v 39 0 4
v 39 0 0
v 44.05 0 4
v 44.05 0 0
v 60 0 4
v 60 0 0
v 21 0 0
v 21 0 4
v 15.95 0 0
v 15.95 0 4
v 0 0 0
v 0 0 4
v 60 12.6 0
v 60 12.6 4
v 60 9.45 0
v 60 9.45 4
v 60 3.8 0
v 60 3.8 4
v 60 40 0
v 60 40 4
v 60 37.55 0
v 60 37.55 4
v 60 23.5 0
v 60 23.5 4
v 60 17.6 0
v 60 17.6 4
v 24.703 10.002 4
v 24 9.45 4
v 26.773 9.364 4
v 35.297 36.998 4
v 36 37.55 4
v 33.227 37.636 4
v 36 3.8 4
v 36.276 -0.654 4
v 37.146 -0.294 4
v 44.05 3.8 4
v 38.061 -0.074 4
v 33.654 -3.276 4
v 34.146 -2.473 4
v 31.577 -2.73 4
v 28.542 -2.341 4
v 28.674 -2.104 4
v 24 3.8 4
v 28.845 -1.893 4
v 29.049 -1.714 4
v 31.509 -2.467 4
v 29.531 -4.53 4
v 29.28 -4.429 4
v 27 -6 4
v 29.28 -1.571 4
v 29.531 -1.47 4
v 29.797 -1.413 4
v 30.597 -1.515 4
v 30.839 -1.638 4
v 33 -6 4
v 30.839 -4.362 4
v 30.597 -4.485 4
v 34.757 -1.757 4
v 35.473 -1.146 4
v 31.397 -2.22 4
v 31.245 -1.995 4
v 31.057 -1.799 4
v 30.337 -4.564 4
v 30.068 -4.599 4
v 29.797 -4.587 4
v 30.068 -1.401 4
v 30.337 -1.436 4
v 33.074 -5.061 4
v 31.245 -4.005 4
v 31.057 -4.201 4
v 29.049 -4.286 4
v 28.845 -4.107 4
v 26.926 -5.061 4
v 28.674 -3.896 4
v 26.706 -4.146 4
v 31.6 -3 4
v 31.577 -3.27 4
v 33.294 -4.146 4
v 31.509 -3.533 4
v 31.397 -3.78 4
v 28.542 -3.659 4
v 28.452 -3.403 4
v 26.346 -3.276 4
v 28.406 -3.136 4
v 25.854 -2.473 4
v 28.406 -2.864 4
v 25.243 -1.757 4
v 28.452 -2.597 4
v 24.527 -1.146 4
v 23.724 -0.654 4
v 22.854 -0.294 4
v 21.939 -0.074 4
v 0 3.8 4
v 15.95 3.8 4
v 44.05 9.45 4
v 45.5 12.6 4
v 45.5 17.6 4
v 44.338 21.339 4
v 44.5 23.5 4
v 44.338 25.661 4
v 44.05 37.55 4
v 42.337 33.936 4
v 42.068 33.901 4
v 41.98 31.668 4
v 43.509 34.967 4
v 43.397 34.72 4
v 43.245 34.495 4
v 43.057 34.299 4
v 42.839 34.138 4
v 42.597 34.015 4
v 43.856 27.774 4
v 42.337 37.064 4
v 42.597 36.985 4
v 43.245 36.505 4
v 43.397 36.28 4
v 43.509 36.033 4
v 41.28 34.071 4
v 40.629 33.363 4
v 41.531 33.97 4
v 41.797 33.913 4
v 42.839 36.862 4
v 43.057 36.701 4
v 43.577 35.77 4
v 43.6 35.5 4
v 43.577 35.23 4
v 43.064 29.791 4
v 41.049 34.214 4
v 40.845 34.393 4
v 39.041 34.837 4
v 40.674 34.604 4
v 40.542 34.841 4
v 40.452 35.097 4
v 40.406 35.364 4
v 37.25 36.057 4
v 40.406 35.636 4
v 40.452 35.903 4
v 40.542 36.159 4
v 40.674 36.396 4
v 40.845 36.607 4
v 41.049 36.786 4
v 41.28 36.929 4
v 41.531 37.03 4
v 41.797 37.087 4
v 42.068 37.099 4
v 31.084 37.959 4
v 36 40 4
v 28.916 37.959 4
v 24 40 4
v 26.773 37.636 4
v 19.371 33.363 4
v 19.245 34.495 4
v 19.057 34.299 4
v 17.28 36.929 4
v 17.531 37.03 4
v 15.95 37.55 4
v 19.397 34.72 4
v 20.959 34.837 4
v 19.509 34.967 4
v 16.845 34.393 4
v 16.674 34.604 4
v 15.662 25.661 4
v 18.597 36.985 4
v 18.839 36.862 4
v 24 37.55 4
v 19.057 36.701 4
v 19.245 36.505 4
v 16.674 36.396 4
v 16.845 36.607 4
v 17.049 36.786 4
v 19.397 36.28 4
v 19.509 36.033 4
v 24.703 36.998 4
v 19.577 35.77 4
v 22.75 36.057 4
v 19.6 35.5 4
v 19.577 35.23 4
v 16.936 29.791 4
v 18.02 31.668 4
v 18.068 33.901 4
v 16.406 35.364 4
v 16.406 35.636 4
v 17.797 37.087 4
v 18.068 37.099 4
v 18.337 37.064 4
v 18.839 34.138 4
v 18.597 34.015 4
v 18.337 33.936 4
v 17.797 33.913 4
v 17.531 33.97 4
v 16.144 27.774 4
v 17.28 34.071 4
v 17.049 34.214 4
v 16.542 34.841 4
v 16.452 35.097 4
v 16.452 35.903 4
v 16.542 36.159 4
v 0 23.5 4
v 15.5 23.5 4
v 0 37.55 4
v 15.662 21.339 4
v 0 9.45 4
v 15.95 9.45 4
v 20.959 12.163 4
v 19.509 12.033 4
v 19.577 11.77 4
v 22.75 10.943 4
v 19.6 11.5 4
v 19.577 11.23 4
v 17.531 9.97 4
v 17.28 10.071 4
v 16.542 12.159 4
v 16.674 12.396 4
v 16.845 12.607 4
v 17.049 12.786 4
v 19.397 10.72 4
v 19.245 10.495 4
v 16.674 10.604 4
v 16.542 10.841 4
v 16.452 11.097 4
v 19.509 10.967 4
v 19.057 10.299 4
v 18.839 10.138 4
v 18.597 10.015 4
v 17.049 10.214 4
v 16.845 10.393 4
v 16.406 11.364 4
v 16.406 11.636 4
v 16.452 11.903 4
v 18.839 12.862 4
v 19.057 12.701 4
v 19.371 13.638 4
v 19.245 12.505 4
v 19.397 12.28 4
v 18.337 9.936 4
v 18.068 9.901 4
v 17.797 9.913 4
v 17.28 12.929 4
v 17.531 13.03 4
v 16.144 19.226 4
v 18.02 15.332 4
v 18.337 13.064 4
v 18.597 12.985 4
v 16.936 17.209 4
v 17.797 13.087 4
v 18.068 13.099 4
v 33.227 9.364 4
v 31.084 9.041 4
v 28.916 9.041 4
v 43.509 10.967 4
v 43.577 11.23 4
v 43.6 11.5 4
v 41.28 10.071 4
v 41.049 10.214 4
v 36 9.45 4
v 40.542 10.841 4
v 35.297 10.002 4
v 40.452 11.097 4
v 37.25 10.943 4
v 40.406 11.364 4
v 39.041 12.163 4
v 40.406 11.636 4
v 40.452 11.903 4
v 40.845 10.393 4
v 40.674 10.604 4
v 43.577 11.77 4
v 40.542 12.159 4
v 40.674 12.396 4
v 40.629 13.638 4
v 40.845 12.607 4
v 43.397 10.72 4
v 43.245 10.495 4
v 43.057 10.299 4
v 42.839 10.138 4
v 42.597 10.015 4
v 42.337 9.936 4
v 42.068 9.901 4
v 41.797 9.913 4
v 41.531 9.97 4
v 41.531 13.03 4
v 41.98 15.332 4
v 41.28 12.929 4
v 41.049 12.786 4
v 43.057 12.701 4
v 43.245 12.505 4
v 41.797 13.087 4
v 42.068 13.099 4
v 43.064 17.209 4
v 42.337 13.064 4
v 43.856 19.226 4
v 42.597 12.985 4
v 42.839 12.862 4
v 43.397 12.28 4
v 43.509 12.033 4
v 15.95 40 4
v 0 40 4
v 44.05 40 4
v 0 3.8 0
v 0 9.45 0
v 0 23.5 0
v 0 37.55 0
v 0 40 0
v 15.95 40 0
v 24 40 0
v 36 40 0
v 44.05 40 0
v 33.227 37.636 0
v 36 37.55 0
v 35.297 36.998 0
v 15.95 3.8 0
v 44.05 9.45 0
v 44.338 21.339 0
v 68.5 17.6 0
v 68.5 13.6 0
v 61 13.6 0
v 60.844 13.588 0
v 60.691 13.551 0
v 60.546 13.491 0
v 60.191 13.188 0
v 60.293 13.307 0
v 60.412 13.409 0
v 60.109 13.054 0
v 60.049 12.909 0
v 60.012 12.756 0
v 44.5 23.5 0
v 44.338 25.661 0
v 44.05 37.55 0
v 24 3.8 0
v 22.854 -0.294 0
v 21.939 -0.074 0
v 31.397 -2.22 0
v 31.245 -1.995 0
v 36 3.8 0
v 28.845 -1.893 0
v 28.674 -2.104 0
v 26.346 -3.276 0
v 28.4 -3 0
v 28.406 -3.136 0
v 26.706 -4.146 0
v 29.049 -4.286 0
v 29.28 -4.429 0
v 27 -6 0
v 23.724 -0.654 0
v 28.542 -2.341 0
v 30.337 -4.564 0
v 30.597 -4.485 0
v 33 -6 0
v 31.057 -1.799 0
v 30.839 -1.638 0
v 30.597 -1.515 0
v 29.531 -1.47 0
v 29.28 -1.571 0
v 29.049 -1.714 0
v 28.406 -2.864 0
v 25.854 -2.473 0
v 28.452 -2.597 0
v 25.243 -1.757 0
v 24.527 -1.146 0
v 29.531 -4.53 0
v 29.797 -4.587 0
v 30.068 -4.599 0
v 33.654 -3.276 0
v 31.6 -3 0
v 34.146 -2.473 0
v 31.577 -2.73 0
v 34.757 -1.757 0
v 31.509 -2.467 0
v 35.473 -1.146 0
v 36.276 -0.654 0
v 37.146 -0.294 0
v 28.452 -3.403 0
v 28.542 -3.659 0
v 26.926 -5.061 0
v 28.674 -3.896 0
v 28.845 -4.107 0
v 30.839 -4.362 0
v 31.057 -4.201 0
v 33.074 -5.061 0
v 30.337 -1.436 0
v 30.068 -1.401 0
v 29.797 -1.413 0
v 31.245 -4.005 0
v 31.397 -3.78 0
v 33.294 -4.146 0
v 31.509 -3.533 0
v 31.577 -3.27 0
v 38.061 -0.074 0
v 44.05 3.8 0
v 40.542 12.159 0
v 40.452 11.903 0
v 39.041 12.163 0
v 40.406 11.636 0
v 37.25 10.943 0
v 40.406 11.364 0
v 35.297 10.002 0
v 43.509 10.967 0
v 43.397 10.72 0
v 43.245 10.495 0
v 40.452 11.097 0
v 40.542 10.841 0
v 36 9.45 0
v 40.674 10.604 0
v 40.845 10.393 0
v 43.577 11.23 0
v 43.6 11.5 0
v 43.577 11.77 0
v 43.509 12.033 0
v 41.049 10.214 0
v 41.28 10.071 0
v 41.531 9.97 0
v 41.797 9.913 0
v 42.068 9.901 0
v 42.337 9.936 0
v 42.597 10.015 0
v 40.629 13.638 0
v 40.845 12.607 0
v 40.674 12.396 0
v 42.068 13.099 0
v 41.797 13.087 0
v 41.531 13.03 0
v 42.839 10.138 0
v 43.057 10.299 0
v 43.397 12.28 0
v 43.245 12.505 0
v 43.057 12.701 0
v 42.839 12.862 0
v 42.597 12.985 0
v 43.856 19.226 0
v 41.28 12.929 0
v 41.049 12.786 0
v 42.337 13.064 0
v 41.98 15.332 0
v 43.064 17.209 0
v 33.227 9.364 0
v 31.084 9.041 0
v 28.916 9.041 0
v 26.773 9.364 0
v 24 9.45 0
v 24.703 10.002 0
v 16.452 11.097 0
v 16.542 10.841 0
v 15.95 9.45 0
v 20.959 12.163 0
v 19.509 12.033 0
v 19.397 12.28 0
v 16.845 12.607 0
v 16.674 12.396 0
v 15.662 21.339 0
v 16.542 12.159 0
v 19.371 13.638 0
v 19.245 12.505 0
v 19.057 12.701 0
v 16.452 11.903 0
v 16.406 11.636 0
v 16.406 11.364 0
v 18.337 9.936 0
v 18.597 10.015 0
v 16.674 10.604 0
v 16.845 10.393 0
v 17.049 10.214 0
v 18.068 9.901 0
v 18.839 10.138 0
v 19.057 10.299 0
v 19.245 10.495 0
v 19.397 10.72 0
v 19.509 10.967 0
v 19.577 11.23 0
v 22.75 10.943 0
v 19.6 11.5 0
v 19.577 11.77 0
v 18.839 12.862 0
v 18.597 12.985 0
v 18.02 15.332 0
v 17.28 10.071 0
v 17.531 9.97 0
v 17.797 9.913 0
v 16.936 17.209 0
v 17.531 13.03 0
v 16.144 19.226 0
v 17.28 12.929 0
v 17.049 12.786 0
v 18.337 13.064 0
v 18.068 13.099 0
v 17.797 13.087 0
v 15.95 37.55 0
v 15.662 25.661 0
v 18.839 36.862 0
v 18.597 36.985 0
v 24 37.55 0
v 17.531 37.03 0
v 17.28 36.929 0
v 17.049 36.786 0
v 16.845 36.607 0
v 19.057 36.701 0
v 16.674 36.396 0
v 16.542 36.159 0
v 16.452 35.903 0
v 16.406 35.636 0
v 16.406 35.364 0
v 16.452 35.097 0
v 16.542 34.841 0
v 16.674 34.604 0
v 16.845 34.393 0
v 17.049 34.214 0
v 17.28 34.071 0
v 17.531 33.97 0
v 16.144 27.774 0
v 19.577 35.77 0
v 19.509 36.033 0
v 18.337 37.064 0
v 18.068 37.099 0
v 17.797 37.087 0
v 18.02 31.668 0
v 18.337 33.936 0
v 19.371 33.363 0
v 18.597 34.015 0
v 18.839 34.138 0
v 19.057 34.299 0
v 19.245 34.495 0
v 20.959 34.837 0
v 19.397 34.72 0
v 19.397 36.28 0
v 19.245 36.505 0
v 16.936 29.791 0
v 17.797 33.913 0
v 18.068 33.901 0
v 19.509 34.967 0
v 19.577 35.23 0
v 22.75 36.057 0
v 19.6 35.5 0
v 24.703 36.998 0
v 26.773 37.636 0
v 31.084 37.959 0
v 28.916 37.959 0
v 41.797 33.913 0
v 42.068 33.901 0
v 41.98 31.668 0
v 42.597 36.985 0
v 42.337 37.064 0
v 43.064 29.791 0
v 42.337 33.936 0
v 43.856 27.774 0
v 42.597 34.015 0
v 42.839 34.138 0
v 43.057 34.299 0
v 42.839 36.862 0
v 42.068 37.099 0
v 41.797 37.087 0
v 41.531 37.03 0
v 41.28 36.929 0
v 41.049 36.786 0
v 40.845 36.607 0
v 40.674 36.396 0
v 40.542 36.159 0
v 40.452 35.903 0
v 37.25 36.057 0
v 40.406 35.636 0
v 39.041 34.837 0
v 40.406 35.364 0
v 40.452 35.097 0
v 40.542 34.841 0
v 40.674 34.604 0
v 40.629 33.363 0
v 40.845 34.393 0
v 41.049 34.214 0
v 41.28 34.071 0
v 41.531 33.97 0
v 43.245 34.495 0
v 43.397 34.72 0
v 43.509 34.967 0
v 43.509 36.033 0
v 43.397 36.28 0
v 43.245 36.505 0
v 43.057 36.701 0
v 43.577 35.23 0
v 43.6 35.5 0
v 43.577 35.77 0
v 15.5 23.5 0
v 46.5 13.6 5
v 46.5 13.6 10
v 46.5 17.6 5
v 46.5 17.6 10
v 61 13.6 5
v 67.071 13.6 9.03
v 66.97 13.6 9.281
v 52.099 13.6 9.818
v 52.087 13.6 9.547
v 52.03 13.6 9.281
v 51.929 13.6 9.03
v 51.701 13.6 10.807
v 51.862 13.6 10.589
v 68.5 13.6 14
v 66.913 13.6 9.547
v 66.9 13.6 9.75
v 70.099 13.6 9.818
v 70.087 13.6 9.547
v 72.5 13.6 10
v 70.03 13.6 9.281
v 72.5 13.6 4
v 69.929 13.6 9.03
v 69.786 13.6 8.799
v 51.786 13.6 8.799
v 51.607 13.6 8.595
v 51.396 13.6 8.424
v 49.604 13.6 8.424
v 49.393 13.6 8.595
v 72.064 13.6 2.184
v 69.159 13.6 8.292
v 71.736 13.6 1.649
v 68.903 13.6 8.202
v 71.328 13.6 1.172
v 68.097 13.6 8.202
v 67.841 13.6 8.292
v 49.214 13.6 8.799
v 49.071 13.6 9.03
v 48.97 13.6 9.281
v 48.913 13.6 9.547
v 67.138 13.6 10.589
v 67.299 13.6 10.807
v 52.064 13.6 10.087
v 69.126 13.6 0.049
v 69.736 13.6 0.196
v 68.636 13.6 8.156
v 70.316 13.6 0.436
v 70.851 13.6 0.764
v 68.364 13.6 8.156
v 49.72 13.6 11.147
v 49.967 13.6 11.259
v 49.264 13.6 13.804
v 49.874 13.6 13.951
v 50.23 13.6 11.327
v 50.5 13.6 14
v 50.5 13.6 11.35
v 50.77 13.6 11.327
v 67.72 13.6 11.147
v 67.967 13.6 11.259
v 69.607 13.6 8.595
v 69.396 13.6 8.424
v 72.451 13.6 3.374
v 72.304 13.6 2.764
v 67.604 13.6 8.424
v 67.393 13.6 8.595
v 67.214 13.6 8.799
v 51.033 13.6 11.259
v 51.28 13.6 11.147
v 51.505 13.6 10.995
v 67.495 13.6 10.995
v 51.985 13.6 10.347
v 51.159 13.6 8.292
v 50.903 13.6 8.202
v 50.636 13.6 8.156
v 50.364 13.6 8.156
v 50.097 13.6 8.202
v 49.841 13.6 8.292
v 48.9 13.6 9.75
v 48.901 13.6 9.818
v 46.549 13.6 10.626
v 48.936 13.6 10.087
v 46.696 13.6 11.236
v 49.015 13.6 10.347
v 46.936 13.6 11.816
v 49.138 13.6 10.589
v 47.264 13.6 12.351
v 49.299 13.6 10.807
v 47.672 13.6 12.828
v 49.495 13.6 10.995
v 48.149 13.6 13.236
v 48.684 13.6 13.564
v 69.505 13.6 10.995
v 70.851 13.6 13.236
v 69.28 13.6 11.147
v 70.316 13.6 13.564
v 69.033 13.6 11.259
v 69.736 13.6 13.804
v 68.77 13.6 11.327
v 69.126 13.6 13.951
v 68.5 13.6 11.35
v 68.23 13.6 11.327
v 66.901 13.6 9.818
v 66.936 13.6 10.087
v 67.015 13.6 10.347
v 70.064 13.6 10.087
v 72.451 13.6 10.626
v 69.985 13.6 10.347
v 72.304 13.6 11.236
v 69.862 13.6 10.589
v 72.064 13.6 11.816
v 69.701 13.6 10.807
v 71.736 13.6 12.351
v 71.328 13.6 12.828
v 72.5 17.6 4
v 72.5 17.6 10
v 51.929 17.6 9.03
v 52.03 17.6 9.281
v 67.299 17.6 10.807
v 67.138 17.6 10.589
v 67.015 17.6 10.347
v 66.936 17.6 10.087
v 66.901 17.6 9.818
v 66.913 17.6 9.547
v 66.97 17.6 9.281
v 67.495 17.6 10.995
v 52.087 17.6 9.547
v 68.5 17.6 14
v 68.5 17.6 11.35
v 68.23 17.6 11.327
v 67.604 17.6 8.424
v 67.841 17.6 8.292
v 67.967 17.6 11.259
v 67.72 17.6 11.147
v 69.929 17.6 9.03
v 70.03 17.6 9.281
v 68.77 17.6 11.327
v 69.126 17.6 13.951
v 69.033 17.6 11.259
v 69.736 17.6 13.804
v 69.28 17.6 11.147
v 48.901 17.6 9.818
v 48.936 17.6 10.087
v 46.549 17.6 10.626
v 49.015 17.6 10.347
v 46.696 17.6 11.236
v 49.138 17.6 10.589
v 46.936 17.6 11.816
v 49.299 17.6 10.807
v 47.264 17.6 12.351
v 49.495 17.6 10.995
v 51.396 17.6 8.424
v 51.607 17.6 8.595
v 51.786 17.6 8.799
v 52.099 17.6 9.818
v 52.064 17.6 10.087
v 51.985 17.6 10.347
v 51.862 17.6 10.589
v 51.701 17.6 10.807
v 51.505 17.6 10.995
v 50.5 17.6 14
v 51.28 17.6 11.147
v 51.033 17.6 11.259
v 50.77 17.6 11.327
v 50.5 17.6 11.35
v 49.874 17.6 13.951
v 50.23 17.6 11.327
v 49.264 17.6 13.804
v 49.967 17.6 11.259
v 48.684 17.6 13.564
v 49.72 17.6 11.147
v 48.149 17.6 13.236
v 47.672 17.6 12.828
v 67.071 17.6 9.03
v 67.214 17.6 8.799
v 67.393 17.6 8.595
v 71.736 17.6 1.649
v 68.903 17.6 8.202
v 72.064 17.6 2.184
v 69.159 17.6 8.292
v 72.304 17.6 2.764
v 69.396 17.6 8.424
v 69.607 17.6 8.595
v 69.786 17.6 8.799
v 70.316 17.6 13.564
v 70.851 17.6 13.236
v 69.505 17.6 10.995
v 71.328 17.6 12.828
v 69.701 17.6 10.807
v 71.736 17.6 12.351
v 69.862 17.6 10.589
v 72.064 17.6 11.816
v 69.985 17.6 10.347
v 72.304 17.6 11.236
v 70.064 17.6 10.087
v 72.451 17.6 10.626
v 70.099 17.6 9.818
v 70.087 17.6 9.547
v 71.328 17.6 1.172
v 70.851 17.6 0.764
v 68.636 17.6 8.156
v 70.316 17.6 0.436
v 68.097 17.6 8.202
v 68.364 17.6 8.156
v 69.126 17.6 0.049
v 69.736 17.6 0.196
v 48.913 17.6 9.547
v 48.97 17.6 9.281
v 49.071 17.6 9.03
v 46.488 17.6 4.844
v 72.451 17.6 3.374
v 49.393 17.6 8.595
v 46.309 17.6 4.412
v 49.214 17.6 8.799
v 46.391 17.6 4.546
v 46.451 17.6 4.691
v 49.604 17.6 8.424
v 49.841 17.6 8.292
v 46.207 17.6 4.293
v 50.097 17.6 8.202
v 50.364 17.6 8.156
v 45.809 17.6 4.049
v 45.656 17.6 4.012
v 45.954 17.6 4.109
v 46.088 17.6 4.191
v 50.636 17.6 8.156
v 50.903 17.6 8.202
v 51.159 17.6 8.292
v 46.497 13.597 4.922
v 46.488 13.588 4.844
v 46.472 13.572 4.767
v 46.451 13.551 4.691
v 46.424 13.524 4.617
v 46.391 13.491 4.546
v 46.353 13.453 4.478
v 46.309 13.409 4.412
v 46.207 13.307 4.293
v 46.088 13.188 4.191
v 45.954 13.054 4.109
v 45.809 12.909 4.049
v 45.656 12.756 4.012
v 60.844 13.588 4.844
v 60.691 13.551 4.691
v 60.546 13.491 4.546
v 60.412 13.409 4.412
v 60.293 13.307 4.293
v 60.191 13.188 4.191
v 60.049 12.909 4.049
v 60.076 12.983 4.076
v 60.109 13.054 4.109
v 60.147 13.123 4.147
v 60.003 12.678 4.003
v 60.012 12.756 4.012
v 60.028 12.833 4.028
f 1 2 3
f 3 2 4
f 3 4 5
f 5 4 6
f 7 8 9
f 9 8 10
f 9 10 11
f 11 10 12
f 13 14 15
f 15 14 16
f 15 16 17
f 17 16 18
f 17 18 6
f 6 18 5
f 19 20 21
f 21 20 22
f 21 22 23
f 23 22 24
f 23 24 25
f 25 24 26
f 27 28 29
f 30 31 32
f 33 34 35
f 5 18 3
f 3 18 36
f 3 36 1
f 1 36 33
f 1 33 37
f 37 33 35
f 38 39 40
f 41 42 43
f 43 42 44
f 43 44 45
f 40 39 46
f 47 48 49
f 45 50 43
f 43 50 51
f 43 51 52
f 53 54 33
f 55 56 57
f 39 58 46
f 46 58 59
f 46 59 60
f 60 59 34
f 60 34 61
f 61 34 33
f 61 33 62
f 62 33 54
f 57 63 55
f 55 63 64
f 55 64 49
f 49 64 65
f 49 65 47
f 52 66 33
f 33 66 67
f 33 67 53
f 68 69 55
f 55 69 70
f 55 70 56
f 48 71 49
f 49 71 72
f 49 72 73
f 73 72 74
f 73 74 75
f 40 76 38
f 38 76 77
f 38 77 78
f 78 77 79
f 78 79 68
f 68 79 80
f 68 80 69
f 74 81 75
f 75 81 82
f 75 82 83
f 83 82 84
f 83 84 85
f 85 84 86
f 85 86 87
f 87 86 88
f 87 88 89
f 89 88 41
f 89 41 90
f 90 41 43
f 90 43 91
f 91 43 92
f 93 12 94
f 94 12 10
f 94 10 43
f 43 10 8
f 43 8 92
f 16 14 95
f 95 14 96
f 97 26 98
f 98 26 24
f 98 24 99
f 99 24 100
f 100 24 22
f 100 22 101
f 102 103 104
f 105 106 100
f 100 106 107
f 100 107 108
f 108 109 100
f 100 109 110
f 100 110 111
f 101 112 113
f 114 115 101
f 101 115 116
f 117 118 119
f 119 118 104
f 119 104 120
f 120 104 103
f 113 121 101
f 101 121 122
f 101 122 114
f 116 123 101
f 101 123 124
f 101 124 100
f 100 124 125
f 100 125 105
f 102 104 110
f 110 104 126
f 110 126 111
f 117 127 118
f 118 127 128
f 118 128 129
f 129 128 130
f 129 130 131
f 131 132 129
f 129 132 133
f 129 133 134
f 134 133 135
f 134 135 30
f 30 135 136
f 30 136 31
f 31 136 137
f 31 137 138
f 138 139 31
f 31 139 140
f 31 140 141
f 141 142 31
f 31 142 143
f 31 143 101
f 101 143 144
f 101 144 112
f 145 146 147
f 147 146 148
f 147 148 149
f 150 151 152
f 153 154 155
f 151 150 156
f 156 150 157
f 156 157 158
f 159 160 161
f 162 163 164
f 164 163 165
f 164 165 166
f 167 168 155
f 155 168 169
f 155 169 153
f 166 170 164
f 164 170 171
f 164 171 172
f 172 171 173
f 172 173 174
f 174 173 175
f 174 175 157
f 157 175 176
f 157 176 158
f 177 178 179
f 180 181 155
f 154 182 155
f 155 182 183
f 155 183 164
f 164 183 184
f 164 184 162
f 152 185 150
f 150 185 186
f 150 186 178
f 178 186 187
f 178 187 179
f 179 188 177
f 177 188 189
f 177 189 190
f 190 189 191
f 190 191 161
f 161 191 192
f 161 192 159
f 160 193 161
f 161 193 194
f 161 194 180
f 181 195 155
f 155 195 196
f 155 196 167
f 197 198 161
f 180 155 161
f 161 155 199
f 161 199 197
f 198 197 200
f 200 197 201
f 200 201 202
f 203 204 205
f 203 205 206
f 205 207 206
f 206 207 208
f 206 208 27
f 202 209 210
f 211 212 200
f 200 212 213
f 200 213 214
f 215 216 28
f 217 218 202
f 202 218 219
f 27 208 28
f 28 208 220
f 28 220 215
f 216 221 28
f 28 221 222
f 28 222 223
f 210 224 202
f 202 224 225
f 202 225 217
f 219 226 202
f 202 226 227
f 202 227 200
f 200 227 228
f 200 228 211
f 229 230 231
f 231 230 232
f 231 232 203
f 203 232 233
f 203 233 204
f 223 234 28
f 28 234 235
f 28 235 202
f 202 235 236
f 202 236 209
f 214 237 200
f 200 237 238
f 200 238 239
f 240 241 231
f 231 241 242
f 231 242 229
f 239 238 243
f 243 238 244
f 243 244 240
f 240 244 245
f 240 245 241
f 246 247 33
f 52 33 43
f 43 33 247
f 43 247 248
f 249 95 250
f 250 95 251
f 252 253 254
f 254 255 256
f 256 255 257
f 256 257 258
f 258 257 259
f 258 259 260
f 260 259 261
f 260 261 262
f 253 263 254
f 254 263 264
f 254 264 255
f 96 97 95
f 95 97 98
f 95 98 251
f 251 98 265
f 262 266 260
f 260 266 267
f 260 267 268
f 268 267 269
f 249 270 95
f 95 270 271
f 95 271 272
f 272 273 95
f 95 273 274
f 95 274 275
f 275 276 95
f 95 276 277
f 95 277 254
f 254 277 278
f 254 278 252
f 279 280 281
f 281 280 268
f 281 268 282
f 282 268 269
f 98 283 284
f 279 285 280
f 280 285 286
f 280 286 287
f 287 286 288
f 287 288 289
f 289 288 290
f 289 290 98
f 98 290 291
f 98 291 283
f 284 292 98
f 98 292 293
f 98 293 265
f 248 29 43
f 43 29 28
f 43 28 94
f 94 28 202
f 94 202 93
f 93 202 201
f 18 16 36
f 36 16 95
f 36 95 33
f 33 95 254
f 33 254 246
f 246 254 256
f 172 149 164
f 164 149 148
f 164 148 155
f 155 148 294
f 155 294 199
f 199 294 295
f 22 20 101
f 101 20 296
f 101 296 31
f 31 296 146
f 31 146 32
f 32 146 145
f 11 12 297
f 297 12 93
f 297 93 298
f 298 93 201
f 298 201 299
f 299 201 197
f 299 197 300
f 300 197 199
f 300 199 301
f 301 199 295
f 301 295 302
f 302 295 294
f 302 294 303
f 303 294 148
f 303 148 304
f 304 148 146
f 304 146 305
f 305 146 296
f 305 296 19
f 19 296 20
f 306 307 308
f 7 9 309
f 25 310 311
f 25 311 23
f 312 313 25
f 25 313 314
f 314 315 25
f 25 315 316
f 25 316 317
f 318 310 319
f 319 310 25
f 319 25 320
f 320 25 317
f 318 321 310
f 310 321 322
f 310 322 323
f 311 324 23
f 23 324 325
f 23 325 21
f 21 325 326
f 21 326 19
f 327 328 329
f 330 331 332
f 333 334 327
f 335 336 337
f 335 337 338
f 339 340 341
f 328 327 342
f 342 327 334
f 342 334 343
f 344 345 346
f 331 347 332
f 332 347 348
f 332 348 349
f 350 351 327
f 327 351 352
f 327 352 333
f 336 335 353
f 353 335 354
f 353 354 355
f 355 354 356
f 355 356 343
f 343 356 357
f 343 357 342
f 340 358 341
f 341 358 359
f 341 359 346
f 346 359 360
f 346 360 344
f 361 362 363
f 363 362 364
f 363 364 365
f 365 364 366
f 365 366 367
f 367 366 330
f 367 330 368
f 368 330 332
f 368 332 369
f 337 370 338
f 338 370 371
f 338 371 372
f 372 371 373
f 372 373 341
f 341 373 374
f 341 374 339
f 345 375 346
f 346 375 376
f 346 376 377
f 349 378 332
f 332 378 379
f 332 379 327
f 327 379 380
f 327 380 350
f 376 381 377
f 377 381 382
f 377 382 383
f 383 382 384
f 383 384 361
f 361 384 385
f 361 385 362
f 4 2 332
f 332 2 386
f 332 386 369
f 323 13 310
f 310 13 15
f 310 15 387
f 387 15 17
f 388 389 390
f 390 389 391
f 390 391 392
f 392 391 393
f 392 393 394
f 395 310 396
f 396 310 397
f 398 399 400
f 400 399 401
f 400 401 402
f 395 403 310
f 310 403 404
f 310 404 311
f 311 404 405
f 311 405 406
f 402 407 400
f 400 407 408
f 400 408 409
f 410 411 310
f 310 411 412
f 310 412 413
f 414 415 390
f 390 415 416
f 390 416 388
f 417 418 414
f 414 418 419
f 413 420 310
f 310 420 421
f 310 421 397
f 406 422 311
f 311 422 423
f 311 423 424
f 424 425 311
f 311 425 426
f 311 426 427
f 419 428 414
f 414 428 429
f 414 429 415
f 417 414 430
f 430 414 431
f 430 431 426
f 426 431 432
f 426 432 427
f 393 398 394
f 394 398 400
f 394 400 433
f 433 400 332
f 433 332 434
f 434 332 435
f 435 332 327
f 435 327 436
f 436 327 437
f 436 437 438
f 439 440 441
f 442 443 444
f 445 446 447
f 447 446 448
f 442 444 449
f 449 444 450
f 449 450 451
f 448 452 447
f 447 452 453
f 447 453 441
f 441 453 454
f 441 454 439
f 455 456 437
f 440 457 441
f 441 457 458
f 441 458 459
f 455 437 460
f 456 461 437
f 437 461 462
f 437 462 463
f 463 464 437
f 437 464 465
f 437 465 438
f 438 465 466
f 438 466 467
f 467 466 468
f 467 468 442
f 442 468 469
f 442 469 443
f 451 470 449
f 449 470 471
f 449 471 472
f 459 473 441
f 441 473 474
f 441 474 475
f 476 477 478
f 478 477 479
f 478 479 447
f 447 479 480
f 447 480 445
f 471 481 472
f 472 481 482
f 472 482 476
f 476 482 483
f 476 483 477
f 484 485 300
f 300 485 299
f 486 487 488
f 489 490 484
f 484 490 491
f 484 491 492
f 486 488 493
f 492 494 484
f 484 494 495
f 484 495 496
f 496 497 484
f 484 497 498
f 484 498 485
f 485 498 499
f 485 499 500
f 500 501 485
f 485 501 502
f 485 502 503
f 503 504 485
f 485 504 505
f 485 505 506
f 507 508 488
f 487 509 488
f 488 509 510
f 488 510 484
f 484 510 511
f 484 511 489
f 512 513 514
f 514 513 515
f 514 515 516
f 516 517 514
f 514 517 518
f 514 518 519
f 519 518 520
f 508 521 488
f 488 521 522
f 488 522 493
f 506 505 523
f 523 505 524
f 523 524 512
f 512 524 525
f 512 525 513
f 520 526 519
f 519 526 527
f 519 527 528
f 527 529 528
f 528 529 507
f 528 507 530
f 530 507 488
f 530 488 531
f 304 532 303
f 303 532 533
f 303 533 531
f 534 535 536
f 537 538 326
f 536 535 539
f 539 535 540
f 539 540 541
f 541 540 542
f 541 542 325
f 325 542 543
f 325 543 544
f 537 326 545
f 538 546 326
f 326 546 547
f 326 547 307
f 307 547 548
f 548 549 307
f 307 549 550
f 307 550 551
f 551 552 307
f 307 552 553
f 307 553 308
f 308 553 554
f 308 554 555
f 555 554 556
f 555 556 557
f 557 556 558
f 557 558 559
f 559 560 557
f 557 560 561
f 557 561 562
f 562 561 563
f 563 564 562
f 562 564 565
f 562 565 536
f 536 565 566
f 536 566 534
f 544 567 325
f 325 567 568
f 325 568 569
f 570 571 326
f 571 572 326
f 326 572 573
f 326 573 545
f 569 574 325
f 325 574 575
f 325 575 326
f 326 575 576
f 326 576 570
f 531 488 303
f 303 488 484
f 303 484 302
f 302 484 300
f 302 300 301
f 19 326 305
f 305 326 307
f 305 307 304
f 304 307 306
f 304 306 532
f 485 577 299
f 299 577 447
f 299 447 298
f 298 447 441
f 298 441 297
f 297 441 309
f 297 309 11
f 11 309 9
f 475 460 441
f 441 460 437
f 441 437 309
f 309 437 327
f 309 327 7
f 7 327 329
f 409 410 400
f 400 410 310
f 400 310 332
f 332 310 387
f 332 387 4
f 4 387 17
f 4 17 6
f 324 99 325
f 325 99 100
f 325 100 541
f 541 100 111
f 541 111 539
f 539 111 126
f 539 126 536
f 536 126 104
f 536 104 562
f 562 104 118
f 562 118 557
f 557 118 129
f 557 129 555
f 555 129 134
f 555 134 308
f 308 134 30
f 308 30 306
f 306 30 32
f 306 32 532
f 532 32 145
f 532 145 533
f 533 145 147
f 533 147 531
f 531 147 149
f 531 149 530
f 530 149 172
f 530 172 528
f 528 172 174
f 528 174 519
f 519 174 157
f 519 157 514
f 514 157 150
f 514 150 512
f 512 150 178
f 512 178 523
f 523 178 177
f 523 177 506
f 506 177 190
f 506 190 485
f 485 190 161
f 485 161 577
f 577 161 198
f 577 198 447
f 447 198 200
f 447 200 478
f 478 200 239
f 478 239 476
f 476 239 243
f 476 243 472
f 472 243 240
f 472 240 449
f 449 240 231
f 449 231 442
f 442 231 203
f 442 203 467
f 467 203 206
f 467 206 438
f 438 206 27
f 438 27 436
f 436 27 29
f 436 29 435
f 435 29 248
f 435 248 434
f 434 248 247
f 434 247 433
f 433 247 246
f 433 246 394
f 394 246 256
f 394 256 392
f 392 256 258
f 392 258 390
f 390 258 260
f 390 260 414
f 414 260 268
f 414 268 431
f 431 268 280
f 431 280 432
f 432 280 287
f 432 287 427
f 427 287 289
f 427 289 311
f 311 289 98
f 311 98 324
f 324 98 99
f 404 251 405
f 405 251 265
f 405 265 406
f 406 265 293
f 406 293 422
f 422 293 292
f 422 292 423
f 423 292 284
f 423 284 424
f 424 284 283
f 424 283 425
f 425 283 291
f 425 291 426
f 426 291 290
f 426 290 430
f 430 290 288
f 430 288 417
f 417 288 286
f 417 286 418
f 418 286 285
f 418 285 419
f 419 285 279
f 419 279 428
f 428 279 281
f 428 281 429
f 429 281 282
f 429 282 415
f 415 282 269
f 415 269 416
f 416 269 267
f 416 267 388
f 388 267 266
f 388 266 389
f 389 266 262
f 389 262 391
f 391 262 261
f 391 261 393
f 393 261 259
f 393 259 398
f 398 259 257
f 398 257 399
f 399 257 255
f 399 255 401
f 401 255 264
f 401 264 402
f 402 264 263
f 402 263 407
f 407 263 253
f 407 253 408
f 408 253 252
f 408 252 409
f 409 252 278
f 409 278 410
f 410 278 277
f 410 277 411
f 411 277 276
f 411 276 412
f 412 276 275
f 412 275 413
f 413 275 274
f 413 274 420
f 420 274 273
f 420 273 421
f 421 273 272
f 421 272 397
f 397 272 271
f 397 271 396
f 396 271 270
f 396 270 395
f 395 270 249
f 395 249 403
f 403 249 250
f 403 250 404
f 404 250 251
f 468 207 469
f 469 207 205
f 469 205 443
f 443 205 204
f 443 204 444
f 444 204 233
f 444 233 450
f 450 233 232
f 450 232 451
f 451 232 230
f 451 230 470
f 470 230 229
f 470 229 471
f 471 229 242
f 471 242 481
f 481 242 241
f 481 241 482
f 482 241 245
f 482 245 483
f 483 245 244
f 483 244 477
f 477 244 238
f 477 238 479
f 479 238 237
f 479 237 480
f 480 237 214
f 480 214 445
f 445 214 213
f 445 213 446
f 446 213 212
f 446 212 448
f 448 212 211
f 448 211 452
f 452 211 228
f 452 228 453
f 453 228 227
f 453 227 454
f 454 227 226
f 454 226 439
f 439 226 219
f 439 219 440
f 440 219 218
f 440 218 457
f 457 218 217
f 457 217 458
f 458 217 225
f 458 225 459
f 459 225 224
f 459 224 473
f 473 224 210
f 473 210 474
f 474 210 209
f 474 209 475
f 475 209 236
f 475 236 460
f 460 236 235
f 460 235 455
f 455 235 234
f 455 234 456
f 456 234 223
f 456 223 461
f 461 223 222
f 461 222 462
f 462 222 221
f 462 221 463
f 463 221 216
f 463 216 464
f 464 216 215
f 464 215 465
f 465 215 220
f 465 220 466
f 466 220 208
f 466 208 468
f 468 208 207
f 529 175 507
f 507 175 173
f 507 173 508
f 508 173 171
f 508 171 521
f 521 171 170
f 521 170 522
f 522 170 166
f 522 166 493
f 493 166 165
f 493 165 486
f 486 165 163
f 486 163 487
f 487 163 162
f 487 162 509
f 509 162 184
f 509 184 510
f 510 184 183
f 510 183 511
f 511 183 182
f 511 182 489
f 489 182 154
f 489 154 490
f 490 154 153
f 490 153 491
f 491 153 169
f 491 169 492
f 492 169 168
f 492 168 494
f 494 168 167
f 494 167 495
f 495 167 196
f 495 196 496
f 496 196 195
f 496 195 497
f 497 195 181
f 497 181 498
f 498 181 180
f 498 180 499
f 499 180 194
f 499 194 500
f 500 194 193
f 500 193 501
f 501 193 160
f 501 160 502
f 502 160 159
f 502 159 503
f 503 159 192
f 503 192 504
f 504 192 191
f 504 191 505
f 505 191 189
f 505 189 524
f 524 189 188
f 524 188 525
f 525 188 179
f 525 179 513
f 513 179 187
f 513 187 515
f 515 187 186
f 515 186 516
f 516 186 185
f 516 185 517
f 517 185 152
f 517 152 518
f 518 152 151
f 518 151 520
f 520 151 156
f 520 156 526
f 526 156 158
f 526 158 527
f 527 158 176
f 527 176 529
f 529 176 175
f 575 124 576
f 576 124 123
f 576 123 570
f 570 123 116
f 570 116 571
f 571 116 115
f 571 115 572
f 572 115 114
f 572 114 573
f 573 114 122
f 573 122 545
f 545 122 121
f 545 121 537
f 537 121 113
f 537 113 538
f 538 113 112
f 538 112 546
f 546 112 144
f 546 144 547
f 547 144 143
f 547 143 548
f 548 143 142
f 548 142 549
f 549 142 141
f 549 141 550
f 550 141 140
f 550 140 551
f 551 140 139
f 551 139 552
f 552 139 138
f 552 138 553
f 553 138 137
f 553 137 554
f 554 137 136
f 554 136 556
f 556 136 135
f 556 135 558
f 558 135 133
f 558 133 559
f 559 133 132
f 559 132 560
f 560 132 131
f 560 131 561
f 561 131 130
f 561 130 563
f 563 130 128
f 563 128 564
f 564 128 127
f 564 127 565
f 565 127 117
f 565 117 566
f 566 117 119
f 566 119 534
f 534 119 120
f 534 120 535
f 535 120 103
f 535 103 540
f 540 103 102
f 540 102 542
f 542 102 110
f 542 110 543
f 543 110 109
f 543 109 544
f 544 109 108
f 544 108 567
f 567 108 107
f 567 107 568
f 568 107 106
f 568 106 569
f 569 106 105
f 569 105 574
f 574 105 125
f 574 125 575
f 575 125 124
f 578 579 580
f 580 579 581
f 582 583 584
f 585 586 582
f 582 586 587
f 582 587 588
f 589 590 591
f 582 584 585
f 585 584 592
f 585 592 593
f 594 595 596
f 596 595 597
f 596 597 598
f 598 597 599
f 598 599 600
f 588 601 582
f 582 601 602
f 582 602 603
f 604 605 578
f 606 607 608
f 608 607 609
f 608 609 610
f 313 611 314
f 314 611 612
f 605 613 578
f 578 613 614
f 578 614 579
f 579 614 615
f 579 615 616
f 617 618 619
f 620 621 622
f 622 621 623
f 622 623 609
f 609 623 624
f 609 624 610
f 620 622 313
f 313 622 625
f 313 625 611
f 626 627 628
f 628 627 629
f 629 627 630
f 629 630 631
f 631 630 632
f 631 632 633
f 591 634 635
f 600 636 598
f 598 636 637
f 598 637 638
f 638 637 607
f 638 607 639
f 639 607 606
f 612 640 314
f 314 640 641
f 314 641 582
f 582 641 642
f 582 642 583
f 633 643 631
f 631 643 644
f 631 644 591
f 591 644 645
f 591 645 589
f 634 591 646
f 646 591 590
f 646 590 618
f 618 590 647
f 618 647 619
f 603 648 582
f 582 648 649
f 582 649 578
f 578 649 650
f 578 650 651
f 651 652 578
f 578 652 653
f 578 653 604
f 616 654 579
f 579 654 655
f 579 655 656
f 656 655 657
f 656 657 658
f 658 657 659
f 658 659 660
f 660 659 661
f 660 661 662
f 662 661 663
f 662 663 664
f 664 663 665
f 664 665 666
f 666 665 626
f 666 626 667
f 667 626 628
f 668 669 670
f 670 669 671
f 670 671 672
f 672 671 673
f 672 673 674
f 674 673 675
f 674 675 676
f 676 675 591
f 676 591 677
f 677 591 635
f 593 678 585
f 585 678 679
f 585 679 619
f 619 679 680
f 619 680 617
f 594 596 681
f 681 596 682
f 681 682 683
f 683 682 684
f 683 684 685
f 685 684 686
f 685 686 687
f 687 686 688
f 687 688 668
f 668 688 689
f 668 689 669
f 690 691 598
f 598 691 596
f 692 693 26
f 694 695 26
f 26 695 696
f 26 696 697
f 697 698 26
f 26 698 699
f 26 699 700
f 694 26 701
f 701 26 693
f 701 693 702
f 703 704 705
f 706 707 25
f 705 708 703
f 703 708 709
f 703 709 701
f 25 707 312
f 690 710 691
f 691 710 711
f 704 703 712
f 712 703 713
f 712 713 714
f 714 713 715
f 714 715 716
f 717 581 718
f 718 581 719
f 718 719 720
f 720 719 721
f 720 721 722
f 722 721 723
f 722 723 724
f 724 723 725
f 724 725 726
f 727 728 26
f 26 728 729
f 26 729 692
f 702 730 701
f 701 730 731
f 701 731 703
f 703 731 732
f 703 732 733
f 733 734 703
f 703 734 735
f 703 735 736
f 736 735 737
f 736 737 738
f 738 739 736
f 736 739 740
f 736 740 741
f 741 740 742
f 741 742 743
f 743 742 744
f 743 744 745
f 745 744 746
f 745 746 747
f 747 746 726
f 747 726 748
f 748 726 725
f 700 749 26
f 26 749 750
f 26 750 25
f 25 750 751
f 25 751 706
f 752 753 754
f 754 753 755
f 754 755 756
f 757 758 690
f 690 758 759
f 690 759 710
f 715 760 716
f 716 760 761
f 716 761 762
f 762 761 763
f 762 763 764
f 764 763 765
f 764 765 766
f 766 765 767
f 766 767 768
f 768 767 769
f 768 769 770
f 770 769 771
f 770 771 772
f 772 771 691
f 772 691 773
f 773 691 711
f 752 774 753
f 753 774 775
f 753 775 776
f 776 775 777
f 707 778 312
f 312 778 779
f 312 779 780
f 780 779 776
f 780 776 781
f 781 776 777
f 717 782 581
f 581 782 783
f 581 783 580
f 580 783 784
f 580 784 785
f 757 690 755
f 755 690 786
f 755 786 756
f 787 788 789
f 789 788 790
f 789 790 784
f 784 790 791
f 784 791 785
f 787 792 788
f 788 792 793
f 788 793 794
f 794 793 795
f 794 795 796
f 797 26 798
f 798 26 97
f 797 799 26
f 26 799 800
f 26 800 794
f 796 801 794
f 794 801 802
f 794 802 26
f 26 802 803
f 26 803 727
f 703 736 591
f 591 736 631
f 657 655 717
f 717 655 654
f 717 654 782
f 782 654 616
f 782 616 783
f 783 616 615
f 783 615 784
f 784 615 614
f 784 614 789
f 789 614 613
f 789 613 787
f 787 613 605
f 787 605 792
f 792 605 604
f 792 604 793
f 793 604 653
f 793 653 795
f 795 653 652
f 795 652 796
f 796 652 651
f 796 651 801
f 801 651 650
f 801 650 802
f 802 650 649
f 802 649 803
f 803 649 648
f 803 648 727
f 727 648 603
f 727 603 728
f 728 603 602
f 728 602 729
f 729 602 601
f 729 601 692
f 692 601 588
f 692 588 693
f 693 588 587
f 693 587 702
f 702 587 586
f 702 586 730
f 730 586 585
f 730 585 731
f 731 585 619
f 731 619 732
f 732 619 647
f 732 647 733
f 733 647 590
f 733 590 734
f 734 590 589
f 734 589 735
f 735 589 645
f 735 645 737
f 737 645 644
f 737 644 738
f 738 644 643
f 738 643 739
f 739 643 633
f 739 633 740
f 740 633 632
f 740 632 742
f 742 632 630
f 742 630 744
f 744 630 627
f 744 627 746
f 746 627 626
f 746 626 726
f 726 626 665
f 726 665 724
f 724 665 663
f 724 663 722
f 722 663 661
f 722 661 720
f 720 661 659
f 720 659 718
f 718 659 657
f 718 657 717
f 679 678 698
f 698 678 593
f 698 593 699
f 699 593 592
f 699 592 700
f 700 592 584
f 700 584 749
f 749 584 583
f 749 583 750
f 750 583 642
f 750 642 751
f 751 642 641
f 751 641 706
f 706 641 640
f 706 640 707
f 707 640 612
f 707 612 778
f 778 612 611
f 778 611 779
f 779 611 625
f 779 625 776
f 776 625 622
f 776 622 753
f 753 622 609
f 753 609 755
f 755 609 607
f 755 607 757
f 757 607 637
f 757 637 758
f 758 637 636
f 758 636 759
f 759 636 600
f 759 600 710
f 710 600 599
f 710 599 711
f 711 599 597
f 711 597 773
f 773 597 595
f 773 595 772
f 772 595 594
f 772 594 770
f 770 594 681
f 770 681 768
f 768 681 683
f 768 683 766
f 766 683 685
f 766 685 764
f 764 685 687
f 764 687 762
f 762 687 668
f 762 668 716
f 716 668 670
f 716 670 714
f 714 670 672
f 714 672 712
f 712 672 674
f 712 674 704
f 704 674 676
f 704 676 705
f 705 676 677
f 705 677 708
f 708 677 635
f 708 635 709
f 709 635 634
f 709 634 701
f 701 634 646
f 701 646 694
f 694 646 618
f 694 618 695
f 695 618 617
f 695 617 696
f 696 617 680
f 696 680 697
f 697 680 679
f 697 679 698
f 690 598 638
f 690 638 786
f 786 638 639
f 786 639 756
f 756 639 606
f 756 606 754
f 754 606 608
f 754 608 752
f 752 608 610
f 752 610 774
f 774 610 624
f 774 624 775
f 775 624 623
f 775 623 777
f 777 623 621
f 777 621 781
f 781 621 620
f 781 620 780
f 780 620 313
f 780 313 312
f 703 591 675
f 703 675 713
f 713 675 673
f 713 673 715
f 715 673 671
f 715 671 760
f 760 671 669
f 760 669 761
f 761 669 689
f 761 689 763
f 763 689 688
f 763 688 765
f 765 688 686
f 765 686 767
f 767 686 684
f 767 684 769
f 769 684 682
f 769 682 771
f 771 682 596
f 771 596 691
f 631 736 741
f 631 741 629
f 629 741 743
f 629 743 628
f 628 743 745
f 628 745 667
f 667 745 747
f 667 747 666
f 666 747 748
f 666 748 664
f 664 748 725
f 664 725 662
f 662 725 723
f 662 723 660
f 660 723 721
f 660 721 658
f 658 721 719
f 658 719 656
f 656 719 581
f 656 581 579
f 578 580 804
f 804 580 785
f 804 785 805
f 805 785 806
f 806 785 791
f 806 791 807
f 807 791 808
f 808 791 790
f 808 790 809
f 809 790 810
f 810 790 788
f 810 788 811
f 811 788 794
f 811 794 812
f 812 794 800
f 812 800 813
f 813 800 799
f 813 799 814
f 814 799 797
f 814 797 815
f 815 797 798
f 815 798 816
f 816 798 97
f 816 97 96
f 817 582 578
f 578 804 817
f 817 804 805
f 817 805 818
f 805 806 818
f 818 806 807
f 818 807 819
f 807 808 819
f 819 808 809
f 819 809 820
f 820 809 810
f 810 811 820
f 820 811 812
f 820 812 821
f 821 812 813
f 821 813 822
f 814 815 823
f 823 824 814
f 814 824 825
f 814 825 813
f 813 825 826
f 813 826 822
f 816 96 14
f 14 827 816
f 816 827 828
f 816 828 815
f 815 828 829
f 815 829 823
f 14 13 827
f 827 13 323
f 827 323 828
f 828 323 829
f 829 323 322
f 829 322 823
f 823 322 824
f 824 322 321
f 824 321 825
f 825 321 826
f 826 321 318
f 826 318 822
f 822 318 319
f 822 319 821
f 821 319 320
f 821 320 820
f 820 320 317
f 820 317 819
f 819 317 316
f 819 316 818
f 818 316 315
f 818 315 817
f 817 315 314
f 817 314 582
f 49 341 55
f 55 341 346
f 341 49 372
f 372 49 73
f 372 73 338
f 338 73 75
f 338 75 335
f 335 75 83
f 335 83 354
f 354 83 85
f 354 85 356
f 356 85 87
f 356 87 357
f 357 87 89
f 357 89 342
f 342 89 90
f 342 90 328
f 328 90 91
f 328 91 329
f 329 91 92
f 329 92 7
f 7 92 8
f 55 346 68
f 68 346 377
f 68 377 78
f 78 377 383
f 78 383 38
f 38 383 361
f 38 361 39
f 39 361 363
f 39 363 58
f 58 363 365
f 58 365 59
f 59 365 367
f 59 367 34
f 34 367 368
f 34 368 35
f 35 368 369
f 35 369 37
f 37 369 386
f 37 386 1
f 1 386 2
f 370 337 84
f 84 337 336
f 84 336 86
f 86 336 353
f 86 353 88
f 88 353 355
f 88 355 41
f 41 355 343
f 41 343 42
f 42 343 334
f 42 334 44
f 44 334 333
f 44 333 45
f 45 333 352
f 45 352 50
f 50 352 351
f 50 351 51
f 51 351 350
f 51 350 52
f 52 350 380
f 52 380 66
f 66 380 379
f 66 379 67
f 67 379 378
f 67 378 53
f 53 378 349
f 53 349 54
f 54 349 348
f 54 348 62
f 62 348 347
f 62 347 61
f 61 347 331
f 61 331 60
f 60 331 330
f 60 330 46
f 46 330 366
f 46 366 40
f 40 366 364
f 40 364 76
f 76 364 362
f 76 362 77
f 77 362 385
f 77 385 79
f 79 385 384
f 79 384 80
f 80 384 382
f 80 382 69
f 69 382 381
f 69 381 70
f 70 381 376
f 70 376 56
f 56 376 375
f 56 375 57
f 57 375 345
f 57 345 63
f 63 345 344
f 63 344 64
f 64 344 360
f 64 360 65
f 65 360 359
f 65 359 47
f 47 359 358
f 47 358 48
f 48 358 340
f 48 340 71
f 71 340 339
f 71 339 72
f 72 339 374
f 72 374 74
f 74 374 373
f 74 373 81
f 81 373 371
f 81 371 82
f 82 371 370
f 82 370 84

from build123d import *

# Parameters (mm, degrees)
SKETCH1_W                = 60
SKETCH1_H                = 40
BOSS_EXTRUDE1_DEPTH      = 4
SKETCH4_R                = 14.5
CUT_EXTRUDE1_DEPTH       = 4
SKETCH6_R                = 1.6
CUT_EXTRUDE2_DEPTH       = 4
SKETCH7_W                = 26
SKETCH7_H                = 4
BOSS_EXTRUDE3_DEPTH      = 10
SKETCH8_R                = 1.6
CUT_EXTRUDE3_DEPTH       = 78.162231694
SKETCH9_W                = 4
SKETCH9_H                = 4
BOSS_EXTRUDE4_DEPTH      = 12.5
FILLET2_R                = 4
FILLET3_R                = 1
SKETCH10_W               = 6
SKETCH10_H               = 4
BOSS_EXTRUDE5_DEPTH      = 6
FILLET4_R                = 6
F_3_0_3_DIAMETER_HOLE1_D = 3


with BuildPart() as part:
    # Sketch1 → Boss-Extrude1 (new body)
    with BuildSketch(Plane.XY):
        with Locations((30, 20)):
            Rectangle(SKETCH1_W, SKETCH1_H)
    extrude(amount=BOSS_EXTRUDE1_DEPTH)

    # Sketch4 → Cut-Extrude1 (cut)
    with BuildSketch(Plane.XY.offset(4)):
        with Locations((30, 23.5)):
            Circle(SKETCH4_R)
    extrude(amount=-CUT_EXTRUDE1_DEPTH, mode=Mode.SUBTRACT)

    # Sketch6 → Cut-Extrude2 (cut)
    with BuildSketch(Plane.XY.offset(4)):
        with Locations((42, 11.5)):
            Circle(SKETCH6_R)
        with Locations((18, 11.5)):
            Circle(SKETCH6_R)
        with Locations((18, 35.5)):
            Circle(SKETCH6_R)
        with Locations((42, 35.5)):
            Circle(SKETCH6_R)
    extrude(amount=-CUT_EXTRUDE2_DEPTH, mode=Mode.SUBTRACT)

    # Sketch7 → Boss-Extrude3 (add)
    with BuildSketch(Plane.XY.offset(4)):
        with Locations((59.5, 15.6)):
            Rectangle(SKETCH7_W, SKETCH7_H)
    extrude(amount=BOSS_EXTRUDE3_DEPTH)

    # Sketch8 → Cut-Extrude3 (cut, through all)
    with BuildSketch(Plane(origin=(0, 17.6, 0), x_dir=(1, 0, 0), z_dir=(0, 1, 0))):
        with Locations(Location((68.5, -9.75, 0), (0, 0, 270))):
            Circle(SKETCH8_R)
        with Locations(Location((50.5, -9.75, 0), (0, 0, 270))):
            Circle(SKETCH8_R)
    extrude(amount=-CUT_EXTRUDE3_DEPTH, mode=Mode.SUBTRACT)

    # Sketch9 → Boss-Extrude4 (add)
    with BuildSketch(Plane(origin=(60, 0, 0), x_dir=(0, 0, -1), z_dir=(1, 0, 0))):
        with Locations((-2, 15.6)):
            Rectangle(SKETCH9_W, SKETCH9_H)
    extrude(amount=BOSS_EXTRUDE4_DEPTH)

    # Fillet2
    fillet2_edges = [part.edges().sort_by_distance(p)[0] for p in [
        (46.5, 15.6, 14),
        (72.5, 15.6, 14),
        (72.5, 15.6, 0),
    ]]
    fillet(fillet2_edges, radius=FILLET2_R)

    # Fillet3
    fillet3_edges = [part.edges().sort_by_distance(p)[0] for p in [
        (46.5, 15.6, 4),
        (53.25, 13.6, 4),
        (60, 13.6, 2),
    ]]
    fillet(fillet3_edges, radius=FILLET3_R)

    # Sketch10 → Boss-Extrude5 (add)
    with BuildSketch(Plane.XZ):
        with Locations((30, 2)):
            Rectangle(SKETCH10_W, SKETCH10_H)
    extrude(amount=BOSS_EXTRUDE5_DEPTH)

    # Fillet4
    fillet4_edges = [part.edges().sort_by_distance(p)[0] for p in [
        (27, 0, 2),
        (33, 0, 2),
    ]]
    fillet(fillet4_edges, radius=FILLET4_R - 0.0001)  # a hair under: the kernel refuses the full size

    # Ø3.0 (3) Diameter Hole1 (through all)
    with Locations(Plane.XY.offset(4)):
        with Locations((30, -3)):
            Hole(F_3_0_3_DIAMETER_HOLE1_D / 2)


solid = part.part
